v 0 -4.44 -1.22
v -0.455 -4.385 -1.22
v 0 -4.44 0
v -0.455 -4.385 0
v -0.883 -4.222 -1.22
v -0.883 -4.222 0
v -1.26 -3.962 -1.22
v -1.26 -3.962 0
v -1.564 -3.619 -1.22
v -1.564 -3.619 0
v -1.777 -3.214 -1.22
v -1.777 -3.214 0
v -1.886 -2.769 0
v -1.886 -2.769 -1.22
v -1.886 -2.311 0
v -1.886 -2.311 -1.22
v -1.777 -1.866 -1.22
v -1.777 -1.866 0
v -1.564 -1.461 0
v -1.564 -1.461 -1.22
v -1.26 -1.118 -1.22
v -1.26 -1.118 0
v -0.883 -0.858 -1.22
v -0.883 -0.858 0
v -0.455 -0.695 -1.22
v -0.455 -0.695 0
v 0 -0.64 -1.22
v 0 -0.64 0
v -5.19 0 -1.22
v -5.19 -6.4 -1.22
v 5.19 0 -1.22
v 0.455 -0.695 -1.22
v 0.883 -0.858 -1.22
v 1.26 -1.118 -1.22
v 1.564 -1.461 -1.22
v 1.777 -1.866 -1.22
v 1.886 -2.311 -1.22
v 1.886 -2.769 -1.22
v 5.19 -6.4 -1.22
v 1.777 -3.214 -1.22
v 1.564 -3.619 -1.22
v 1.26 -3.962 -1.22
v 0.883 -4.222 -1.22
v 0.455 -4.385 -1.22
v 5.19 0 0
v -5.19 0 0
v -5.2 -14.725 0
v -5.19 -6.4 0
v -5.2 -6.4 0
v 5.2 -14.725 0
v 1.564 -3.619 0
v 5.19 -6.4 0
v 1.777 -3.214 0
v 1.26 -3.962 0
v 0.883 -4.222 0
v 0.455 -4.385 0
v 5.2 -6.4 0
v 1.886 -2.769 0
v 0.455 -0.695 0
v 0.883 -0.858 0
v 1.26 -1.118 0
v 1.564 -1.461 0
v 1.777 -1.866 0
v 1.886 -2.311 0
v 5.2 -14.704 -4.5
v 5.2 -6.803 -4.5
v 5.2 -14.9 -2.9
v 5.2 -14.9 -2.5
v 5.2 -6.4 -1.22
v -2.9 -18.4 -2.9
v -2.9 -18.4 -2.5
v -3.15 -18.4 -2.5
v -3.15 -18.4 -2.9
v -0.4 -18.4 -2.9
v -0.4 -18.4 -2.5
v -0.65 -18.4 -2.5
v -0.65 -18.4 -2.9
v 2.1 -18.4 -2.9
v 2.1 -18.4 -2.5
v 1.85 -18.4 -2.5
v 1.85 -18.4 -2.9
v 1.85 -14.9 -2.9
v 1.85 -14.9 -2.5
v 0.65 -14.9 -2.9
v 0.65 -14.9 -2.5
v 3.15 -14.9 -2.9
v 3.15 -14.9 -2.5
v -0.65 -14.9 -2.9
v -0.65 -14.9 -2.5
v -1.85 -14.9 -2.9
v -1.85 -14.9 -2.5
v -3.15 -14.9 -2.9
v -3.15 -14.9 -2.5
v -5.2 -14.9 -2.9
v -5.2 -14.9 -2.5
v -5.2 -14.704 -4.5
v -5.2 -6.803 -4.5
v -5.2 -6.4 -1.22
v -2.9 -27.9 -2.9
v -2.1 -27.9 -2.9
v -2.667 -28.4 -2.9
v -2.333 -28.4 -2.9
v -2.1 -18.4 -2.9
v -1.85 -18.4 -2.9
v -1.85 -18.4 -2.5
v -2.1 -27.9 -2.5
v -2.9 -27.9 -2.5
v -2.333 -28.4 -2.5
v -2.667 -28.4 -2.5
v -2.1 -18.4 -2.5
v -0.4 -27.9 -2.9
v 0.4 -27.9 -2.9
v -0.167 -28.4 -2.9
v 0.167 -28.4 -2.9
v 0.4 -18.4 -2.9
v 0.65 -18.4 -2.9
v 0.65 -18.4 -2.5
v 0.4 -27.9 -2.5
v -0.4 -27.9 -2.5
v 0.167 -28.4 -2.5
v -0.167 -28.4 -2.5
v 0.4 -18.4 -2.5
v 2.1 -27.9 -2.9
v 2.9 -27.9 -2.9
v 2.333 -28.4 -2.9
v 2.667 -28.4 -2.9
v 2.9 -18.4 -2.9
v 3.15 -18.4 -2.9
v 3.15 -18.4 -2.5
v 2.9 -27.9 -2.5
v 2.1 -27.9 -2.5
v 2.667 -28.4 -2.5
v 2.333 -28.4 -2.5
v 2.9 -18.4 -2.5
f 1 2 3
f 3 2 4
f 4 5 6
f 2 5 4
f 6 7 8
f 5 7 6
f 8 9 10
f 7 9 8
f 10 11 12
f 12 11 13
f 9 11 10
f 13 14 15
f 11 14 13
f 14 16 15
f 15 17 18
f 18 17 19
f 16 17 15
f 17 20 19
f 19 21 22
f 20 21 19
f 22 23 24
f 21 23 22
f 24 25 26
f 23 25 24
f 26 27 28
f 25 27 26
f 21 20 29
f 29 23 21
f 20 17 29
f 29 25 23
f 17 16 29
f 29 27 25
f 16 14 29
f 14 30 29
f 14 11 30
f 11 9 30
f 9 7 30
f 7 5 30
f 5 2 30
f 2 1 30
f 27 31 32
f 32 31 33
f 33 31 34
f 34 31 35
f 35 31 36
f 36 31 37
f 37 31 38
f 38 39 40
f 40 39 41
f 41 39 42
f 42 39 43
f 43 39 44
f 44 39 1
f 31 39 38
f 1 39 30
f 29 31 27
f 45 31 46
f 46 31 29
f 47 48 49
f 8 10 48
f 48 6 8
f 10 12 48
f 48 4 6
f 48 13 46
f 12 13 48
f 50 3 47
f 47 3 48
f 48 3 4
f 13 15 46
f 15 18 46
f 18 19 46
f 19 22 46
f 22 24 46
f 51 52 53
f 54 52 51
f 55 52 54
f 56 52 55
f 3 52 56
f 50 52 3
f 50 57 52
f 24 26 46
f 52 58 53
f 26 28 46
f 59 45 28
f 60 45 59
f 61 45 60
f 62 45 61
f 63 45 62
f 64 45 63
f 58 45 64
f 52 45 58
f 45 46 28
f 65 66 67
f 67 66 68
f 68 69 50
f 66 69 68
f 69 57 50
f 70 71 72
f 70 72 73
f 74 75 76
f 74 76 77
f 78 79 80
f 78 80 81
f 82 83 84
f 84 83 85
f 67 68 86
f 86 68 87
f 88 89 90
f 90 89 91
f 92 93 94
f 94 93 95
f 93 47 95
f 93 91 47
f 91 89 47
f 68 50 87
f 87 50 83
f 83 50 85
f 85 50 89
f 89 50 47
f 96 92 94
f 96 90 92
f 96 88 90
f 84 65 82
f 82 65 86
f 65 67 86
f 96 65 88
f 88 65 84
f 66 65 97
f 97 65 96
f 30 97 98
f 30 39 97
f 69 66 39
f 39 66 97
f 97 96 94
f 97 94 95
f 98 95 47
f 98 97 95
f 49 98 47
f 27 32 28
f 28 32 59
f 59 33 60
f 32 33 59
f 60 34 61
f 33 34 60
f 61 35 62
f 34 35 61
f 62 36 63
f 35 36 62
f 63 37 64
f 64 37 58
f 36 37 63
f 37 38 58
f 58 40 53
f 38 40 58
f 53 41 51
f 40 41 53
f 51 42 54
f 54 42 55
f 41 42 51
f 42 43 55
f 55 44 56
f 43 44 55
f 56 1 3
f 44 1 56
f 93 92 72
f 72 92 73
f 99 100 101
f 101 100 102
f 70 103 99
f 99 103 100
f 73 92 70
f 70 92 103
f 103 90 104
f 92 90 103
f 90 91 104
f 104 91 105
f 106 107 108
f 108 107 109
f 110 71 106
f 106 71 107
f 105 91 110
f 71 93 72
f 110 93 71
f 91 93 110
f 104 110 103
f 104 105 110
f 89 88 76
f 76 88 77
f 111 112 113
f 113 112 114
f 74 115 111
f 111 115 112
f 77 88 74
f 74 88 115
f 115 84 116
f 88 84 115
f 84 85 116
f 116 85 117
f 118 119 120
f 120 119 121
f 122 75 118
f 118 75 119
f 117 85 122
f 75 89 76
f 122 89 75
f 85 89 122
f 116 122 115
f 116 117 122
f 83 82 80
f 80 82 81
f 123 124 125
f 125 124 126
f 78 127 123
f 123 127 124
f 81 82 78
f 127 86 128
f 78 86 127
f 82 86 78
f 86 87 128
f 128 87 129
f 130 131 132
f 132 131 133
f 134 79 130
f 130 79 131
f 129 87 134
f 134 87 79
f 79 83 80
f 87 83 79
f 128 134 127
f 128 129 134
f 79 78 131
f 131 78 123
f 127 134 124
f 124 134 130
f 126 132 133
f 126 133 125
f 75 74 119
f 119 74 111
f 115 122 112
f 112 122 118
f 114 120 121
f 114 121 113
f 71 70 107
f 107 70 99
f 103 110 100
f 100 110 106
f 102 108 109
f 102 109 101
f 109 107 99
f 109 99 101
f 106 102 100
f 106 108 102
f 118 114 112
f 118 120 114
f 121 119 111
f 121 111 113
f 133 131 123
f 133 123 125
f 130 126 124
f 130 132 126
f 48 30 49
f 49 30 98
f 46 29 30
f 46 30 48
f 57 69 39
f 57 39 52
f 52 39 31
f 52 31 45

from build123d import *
from OCP.BRepFilletAPI import BRepFilletAPI_MakeChamfer

# Parameters (mm, degrees)
LINEAR_AUSTRAGEN1_DEPTH              = 5.2
F_3_8_3_8_DURCHMESSER_BOHRUNG1_D     = 3.8
F_3_8_3_8_DURCHMESSER_BOHRUNG1_DEPTH = 5
F_3_8_3_8_DURCHMESSER_BOHRUNG1_TIP   = 1.141635176
SKIZZE4_W                            = 1.3
SKIZZE4_H                            = 0.4
LINEAR_AUSTRAGEN2_DEPTH              = 3.5
SKIZZE5_W                            = 0.8
SKIZZE5_H                            = 0.4
LINEAR_AUSTRAGEN3_DEPTH              = 10
FASE1_SIZE                           = 0.5
FASE1_SIZE2                          = 0.233153829
SKIZZE7_W                            = 1.22
SKIZZE7_H                            = 6.4
SCHNITT_LINEAR_AUSTRAGEN1_DEPTH      = 0.01


with BuildPart() as part:
    # Skizze1 → Linear austragen1 (new, symmetric)
    with BuildSketch(Plane(origin=(0, 0, 0), x_dir=(0, 0, -1), z_dir=(1, 0, 0))):
        Polygon((0, 0), (1.22, 0), (1.22, -6.4), (4.499948007, -6.802726976), (4.499948007, -14.703551087), (2.9, -14.9), (2.5, -14.9), (0, -14.72518297), align=None)
    extrude(amount=LINEAR_AUSTRAGEN1_DEPTH, both=True)

    # Ø3.8 (3.8) Durchmesser Bohrung1
    with Locations(Plane(origin=(0, 0, -1.22), x_dir=(-1, 0, 0), z_dir=(0, 0, -1))):
        with Locations((0, -2.54)):
            Hole(F_3_8_3_8_DURCHMESSER_BOHRUNG1_D / 2, depth=F_3_8_3_8_DURCHMESSER_BOHRUNG1_DEPTH)
            with Locations((0, 0, -(F_3_8_3_8_DURCHMESSER_BOHRUNG1_DEPTH + F_3_8_3_8_DURCHMESSER_BOHRUNG1_TIP / 2))):  # 118° drill point
                Cone(0, F_3_8_3_8_DURCHMESSER_BOHRUNG1_D / 2, F_3_8_3_8_DURCHMESSER_BOHRUNG1_TIP, mode=Mode.SUBTRACT)

    # Skizze4 → Linear austragen2 (add)
    with BuildSketch(Plane.XZ.offset(14.9)):
        with Locations((-2.5, -2.7)):
            Rectangle(SKIZZE4_W, SKIZZE4_H)
        with Locations((0, -2.7)):
            Rectangle(SKIZZE4_W, SKIZZE4_H)
        with Locations((2.5, -2.7)):
            Rectangle(SKIZZE4_W, SKIZZE4_H)
    extrude(amount=LINEAR_AUSTRAGEN2_DEPTH)

    # Skizze5 → Linear austragen3 (add)
    with BuildSketch(Plane.XZ.offset(18.4)):
        with Locations((2.5, -2.7)):
            Rectangle(SKIZZE5_W, SKIZZE5_H)
        with Locations((0, -2.7)):
            Rectangle(SKIZZE5_W, SKIZZE5_H)
        with Locations((-2.5, -2.7)):
            Rectangle(SKIZZE5_W, SKIZZE5_H)
    extrude(amount=LINEAR_AUSTRAGEN3_DEPTH)

    # Fase1: one chamfer whose edges measure the first distance from different faces: ONE call of the kernel's chamfer builder (chamfer() names one face for all edges)
    fase1_edges_1 = [part.edges().sort_by_distance(p)[0] for p in [
        (-2.9, -28.4, -2.7),
    ]]
    fase1_side_1 = [part.faces().sort_by_distance(p)[0] for p in [
        (-2.9, -23.4, -2.7),
    ]]
    fase1_edges_2 = [part.edges().sort_by_distance(p)[0] for p in [
        (-2.1, -28.4, -2.7),
    ]]
    fase1_side_2 = [part.faces().sort_by_distance(p)[0] for p in [
        (-2.1, -23.4, -2.7),
    ]]
    fase1_edges_3 = [part.edges().sort_by_distance(p)[0] for p in [
        (0.4, -28.4, -2.7),
    ]]
    fase1_side_3 = [part.faces().sort_by_distance(p)[0] for p in [
        (0.4, -23.4, -2.7),
    ]]
    fase1_edges_4 = [part.edges().sort_by_distance(p)[0] for p in [
        (-0.4, -28.4, -2.7),
    ]]
    fase1_side_4 = [part.faces().sort_by_distance(p)[0] for p in [
        (-0.4, -23.4, -2.7),
    ]]
    fase1_edges_5 = [part.edges().sort_by_distance(p)[0] for p in [
        (2.1, -28.4, -2.7),
    ]]
    fase1_side_5 = [part.faces().sort_by_distance(p)[0] for p in [
        (2.1, -23.4, -2.7),
    ]]
    fase1_edges_6 = [part.edges().sort_by_distance(p)[0] for p in [
        (2.9, -28.4, -2.7),
    ]]
    fase1_side_6 = [part.faces().sort_by_distance(p)[0] for p in [
        (2.9, -23.4, -2.7),
    ]]
    fase1 = BRepFilletAPI_MakeChamfer(part.part.solid().wrapped)
    for e in fase1_edges_1:
        fase1.Add(FASE1_SIZE, FASE1_SIZE2, e.wrapped, fase1_side_1[0].wrapped)  # the first distance lies on this face
    for e in fase1_edges_2:
        fase1.Add(FASE1_SIZE, FASE1_SIZE2, e.wrapped, fase1_side_2[0].wrapped)  # the first distance lies on this face
    for e in fase1_edges_3:
        fase1.Add(FASE1_SIZE, FASE1_SIZE2, e.wrapped, fase1_side_3[0].wrapped)  # the first distance lies on this face
    for e in fase1_edges_4:
        fase1.Add(FASE1_SIZE, FASE1_SIZE2, e.wrapped, fase1_side_4[0].wrapped)  # the first distance lies on this face
    for e in fase1_edges_5:
        fase1.Add(FASE1_SIZE, FASE1_SIZE2, e.wrapped, fase1_side_5[0].wrapped)  # the first distance lies on this face
    for e in fase1_edges_6:
        fase1.Add(FASE1_SIZE, FASE1_SIZE2, e.wrapped, fase1_side_6[0].wrapped)  # the first distance lies on this face
    add(Compound.cast(fase1.Shape()), mode=Mode.REPLACE)

    # Skizze7 → Schnitt-Linear austragen1 (cut)
    with BuildSketch(Plane.ZY.offset(5.2)):
        with Locations((-0.61, -3.2)):
            Rectangle(SKIZZE7_W, SKIZZE7_H)
    schnitt_linear_austragen1 = extrude(amount=-SCHNITT_LINEAR_AUSTRAGEN1_DEPTH, mode=Mode.SUBTRACT)

    # Spiegeln1: Schnitt-Linear austragen1 across plane
    add(schnitt_linear_austragen1.mirror(Plane(origin=(0, 0, 0), x_dir=(0, 0, 1), z_dir=(1, 0, 0))), mode=Mode.SUBTRACT)


solid = part.part
